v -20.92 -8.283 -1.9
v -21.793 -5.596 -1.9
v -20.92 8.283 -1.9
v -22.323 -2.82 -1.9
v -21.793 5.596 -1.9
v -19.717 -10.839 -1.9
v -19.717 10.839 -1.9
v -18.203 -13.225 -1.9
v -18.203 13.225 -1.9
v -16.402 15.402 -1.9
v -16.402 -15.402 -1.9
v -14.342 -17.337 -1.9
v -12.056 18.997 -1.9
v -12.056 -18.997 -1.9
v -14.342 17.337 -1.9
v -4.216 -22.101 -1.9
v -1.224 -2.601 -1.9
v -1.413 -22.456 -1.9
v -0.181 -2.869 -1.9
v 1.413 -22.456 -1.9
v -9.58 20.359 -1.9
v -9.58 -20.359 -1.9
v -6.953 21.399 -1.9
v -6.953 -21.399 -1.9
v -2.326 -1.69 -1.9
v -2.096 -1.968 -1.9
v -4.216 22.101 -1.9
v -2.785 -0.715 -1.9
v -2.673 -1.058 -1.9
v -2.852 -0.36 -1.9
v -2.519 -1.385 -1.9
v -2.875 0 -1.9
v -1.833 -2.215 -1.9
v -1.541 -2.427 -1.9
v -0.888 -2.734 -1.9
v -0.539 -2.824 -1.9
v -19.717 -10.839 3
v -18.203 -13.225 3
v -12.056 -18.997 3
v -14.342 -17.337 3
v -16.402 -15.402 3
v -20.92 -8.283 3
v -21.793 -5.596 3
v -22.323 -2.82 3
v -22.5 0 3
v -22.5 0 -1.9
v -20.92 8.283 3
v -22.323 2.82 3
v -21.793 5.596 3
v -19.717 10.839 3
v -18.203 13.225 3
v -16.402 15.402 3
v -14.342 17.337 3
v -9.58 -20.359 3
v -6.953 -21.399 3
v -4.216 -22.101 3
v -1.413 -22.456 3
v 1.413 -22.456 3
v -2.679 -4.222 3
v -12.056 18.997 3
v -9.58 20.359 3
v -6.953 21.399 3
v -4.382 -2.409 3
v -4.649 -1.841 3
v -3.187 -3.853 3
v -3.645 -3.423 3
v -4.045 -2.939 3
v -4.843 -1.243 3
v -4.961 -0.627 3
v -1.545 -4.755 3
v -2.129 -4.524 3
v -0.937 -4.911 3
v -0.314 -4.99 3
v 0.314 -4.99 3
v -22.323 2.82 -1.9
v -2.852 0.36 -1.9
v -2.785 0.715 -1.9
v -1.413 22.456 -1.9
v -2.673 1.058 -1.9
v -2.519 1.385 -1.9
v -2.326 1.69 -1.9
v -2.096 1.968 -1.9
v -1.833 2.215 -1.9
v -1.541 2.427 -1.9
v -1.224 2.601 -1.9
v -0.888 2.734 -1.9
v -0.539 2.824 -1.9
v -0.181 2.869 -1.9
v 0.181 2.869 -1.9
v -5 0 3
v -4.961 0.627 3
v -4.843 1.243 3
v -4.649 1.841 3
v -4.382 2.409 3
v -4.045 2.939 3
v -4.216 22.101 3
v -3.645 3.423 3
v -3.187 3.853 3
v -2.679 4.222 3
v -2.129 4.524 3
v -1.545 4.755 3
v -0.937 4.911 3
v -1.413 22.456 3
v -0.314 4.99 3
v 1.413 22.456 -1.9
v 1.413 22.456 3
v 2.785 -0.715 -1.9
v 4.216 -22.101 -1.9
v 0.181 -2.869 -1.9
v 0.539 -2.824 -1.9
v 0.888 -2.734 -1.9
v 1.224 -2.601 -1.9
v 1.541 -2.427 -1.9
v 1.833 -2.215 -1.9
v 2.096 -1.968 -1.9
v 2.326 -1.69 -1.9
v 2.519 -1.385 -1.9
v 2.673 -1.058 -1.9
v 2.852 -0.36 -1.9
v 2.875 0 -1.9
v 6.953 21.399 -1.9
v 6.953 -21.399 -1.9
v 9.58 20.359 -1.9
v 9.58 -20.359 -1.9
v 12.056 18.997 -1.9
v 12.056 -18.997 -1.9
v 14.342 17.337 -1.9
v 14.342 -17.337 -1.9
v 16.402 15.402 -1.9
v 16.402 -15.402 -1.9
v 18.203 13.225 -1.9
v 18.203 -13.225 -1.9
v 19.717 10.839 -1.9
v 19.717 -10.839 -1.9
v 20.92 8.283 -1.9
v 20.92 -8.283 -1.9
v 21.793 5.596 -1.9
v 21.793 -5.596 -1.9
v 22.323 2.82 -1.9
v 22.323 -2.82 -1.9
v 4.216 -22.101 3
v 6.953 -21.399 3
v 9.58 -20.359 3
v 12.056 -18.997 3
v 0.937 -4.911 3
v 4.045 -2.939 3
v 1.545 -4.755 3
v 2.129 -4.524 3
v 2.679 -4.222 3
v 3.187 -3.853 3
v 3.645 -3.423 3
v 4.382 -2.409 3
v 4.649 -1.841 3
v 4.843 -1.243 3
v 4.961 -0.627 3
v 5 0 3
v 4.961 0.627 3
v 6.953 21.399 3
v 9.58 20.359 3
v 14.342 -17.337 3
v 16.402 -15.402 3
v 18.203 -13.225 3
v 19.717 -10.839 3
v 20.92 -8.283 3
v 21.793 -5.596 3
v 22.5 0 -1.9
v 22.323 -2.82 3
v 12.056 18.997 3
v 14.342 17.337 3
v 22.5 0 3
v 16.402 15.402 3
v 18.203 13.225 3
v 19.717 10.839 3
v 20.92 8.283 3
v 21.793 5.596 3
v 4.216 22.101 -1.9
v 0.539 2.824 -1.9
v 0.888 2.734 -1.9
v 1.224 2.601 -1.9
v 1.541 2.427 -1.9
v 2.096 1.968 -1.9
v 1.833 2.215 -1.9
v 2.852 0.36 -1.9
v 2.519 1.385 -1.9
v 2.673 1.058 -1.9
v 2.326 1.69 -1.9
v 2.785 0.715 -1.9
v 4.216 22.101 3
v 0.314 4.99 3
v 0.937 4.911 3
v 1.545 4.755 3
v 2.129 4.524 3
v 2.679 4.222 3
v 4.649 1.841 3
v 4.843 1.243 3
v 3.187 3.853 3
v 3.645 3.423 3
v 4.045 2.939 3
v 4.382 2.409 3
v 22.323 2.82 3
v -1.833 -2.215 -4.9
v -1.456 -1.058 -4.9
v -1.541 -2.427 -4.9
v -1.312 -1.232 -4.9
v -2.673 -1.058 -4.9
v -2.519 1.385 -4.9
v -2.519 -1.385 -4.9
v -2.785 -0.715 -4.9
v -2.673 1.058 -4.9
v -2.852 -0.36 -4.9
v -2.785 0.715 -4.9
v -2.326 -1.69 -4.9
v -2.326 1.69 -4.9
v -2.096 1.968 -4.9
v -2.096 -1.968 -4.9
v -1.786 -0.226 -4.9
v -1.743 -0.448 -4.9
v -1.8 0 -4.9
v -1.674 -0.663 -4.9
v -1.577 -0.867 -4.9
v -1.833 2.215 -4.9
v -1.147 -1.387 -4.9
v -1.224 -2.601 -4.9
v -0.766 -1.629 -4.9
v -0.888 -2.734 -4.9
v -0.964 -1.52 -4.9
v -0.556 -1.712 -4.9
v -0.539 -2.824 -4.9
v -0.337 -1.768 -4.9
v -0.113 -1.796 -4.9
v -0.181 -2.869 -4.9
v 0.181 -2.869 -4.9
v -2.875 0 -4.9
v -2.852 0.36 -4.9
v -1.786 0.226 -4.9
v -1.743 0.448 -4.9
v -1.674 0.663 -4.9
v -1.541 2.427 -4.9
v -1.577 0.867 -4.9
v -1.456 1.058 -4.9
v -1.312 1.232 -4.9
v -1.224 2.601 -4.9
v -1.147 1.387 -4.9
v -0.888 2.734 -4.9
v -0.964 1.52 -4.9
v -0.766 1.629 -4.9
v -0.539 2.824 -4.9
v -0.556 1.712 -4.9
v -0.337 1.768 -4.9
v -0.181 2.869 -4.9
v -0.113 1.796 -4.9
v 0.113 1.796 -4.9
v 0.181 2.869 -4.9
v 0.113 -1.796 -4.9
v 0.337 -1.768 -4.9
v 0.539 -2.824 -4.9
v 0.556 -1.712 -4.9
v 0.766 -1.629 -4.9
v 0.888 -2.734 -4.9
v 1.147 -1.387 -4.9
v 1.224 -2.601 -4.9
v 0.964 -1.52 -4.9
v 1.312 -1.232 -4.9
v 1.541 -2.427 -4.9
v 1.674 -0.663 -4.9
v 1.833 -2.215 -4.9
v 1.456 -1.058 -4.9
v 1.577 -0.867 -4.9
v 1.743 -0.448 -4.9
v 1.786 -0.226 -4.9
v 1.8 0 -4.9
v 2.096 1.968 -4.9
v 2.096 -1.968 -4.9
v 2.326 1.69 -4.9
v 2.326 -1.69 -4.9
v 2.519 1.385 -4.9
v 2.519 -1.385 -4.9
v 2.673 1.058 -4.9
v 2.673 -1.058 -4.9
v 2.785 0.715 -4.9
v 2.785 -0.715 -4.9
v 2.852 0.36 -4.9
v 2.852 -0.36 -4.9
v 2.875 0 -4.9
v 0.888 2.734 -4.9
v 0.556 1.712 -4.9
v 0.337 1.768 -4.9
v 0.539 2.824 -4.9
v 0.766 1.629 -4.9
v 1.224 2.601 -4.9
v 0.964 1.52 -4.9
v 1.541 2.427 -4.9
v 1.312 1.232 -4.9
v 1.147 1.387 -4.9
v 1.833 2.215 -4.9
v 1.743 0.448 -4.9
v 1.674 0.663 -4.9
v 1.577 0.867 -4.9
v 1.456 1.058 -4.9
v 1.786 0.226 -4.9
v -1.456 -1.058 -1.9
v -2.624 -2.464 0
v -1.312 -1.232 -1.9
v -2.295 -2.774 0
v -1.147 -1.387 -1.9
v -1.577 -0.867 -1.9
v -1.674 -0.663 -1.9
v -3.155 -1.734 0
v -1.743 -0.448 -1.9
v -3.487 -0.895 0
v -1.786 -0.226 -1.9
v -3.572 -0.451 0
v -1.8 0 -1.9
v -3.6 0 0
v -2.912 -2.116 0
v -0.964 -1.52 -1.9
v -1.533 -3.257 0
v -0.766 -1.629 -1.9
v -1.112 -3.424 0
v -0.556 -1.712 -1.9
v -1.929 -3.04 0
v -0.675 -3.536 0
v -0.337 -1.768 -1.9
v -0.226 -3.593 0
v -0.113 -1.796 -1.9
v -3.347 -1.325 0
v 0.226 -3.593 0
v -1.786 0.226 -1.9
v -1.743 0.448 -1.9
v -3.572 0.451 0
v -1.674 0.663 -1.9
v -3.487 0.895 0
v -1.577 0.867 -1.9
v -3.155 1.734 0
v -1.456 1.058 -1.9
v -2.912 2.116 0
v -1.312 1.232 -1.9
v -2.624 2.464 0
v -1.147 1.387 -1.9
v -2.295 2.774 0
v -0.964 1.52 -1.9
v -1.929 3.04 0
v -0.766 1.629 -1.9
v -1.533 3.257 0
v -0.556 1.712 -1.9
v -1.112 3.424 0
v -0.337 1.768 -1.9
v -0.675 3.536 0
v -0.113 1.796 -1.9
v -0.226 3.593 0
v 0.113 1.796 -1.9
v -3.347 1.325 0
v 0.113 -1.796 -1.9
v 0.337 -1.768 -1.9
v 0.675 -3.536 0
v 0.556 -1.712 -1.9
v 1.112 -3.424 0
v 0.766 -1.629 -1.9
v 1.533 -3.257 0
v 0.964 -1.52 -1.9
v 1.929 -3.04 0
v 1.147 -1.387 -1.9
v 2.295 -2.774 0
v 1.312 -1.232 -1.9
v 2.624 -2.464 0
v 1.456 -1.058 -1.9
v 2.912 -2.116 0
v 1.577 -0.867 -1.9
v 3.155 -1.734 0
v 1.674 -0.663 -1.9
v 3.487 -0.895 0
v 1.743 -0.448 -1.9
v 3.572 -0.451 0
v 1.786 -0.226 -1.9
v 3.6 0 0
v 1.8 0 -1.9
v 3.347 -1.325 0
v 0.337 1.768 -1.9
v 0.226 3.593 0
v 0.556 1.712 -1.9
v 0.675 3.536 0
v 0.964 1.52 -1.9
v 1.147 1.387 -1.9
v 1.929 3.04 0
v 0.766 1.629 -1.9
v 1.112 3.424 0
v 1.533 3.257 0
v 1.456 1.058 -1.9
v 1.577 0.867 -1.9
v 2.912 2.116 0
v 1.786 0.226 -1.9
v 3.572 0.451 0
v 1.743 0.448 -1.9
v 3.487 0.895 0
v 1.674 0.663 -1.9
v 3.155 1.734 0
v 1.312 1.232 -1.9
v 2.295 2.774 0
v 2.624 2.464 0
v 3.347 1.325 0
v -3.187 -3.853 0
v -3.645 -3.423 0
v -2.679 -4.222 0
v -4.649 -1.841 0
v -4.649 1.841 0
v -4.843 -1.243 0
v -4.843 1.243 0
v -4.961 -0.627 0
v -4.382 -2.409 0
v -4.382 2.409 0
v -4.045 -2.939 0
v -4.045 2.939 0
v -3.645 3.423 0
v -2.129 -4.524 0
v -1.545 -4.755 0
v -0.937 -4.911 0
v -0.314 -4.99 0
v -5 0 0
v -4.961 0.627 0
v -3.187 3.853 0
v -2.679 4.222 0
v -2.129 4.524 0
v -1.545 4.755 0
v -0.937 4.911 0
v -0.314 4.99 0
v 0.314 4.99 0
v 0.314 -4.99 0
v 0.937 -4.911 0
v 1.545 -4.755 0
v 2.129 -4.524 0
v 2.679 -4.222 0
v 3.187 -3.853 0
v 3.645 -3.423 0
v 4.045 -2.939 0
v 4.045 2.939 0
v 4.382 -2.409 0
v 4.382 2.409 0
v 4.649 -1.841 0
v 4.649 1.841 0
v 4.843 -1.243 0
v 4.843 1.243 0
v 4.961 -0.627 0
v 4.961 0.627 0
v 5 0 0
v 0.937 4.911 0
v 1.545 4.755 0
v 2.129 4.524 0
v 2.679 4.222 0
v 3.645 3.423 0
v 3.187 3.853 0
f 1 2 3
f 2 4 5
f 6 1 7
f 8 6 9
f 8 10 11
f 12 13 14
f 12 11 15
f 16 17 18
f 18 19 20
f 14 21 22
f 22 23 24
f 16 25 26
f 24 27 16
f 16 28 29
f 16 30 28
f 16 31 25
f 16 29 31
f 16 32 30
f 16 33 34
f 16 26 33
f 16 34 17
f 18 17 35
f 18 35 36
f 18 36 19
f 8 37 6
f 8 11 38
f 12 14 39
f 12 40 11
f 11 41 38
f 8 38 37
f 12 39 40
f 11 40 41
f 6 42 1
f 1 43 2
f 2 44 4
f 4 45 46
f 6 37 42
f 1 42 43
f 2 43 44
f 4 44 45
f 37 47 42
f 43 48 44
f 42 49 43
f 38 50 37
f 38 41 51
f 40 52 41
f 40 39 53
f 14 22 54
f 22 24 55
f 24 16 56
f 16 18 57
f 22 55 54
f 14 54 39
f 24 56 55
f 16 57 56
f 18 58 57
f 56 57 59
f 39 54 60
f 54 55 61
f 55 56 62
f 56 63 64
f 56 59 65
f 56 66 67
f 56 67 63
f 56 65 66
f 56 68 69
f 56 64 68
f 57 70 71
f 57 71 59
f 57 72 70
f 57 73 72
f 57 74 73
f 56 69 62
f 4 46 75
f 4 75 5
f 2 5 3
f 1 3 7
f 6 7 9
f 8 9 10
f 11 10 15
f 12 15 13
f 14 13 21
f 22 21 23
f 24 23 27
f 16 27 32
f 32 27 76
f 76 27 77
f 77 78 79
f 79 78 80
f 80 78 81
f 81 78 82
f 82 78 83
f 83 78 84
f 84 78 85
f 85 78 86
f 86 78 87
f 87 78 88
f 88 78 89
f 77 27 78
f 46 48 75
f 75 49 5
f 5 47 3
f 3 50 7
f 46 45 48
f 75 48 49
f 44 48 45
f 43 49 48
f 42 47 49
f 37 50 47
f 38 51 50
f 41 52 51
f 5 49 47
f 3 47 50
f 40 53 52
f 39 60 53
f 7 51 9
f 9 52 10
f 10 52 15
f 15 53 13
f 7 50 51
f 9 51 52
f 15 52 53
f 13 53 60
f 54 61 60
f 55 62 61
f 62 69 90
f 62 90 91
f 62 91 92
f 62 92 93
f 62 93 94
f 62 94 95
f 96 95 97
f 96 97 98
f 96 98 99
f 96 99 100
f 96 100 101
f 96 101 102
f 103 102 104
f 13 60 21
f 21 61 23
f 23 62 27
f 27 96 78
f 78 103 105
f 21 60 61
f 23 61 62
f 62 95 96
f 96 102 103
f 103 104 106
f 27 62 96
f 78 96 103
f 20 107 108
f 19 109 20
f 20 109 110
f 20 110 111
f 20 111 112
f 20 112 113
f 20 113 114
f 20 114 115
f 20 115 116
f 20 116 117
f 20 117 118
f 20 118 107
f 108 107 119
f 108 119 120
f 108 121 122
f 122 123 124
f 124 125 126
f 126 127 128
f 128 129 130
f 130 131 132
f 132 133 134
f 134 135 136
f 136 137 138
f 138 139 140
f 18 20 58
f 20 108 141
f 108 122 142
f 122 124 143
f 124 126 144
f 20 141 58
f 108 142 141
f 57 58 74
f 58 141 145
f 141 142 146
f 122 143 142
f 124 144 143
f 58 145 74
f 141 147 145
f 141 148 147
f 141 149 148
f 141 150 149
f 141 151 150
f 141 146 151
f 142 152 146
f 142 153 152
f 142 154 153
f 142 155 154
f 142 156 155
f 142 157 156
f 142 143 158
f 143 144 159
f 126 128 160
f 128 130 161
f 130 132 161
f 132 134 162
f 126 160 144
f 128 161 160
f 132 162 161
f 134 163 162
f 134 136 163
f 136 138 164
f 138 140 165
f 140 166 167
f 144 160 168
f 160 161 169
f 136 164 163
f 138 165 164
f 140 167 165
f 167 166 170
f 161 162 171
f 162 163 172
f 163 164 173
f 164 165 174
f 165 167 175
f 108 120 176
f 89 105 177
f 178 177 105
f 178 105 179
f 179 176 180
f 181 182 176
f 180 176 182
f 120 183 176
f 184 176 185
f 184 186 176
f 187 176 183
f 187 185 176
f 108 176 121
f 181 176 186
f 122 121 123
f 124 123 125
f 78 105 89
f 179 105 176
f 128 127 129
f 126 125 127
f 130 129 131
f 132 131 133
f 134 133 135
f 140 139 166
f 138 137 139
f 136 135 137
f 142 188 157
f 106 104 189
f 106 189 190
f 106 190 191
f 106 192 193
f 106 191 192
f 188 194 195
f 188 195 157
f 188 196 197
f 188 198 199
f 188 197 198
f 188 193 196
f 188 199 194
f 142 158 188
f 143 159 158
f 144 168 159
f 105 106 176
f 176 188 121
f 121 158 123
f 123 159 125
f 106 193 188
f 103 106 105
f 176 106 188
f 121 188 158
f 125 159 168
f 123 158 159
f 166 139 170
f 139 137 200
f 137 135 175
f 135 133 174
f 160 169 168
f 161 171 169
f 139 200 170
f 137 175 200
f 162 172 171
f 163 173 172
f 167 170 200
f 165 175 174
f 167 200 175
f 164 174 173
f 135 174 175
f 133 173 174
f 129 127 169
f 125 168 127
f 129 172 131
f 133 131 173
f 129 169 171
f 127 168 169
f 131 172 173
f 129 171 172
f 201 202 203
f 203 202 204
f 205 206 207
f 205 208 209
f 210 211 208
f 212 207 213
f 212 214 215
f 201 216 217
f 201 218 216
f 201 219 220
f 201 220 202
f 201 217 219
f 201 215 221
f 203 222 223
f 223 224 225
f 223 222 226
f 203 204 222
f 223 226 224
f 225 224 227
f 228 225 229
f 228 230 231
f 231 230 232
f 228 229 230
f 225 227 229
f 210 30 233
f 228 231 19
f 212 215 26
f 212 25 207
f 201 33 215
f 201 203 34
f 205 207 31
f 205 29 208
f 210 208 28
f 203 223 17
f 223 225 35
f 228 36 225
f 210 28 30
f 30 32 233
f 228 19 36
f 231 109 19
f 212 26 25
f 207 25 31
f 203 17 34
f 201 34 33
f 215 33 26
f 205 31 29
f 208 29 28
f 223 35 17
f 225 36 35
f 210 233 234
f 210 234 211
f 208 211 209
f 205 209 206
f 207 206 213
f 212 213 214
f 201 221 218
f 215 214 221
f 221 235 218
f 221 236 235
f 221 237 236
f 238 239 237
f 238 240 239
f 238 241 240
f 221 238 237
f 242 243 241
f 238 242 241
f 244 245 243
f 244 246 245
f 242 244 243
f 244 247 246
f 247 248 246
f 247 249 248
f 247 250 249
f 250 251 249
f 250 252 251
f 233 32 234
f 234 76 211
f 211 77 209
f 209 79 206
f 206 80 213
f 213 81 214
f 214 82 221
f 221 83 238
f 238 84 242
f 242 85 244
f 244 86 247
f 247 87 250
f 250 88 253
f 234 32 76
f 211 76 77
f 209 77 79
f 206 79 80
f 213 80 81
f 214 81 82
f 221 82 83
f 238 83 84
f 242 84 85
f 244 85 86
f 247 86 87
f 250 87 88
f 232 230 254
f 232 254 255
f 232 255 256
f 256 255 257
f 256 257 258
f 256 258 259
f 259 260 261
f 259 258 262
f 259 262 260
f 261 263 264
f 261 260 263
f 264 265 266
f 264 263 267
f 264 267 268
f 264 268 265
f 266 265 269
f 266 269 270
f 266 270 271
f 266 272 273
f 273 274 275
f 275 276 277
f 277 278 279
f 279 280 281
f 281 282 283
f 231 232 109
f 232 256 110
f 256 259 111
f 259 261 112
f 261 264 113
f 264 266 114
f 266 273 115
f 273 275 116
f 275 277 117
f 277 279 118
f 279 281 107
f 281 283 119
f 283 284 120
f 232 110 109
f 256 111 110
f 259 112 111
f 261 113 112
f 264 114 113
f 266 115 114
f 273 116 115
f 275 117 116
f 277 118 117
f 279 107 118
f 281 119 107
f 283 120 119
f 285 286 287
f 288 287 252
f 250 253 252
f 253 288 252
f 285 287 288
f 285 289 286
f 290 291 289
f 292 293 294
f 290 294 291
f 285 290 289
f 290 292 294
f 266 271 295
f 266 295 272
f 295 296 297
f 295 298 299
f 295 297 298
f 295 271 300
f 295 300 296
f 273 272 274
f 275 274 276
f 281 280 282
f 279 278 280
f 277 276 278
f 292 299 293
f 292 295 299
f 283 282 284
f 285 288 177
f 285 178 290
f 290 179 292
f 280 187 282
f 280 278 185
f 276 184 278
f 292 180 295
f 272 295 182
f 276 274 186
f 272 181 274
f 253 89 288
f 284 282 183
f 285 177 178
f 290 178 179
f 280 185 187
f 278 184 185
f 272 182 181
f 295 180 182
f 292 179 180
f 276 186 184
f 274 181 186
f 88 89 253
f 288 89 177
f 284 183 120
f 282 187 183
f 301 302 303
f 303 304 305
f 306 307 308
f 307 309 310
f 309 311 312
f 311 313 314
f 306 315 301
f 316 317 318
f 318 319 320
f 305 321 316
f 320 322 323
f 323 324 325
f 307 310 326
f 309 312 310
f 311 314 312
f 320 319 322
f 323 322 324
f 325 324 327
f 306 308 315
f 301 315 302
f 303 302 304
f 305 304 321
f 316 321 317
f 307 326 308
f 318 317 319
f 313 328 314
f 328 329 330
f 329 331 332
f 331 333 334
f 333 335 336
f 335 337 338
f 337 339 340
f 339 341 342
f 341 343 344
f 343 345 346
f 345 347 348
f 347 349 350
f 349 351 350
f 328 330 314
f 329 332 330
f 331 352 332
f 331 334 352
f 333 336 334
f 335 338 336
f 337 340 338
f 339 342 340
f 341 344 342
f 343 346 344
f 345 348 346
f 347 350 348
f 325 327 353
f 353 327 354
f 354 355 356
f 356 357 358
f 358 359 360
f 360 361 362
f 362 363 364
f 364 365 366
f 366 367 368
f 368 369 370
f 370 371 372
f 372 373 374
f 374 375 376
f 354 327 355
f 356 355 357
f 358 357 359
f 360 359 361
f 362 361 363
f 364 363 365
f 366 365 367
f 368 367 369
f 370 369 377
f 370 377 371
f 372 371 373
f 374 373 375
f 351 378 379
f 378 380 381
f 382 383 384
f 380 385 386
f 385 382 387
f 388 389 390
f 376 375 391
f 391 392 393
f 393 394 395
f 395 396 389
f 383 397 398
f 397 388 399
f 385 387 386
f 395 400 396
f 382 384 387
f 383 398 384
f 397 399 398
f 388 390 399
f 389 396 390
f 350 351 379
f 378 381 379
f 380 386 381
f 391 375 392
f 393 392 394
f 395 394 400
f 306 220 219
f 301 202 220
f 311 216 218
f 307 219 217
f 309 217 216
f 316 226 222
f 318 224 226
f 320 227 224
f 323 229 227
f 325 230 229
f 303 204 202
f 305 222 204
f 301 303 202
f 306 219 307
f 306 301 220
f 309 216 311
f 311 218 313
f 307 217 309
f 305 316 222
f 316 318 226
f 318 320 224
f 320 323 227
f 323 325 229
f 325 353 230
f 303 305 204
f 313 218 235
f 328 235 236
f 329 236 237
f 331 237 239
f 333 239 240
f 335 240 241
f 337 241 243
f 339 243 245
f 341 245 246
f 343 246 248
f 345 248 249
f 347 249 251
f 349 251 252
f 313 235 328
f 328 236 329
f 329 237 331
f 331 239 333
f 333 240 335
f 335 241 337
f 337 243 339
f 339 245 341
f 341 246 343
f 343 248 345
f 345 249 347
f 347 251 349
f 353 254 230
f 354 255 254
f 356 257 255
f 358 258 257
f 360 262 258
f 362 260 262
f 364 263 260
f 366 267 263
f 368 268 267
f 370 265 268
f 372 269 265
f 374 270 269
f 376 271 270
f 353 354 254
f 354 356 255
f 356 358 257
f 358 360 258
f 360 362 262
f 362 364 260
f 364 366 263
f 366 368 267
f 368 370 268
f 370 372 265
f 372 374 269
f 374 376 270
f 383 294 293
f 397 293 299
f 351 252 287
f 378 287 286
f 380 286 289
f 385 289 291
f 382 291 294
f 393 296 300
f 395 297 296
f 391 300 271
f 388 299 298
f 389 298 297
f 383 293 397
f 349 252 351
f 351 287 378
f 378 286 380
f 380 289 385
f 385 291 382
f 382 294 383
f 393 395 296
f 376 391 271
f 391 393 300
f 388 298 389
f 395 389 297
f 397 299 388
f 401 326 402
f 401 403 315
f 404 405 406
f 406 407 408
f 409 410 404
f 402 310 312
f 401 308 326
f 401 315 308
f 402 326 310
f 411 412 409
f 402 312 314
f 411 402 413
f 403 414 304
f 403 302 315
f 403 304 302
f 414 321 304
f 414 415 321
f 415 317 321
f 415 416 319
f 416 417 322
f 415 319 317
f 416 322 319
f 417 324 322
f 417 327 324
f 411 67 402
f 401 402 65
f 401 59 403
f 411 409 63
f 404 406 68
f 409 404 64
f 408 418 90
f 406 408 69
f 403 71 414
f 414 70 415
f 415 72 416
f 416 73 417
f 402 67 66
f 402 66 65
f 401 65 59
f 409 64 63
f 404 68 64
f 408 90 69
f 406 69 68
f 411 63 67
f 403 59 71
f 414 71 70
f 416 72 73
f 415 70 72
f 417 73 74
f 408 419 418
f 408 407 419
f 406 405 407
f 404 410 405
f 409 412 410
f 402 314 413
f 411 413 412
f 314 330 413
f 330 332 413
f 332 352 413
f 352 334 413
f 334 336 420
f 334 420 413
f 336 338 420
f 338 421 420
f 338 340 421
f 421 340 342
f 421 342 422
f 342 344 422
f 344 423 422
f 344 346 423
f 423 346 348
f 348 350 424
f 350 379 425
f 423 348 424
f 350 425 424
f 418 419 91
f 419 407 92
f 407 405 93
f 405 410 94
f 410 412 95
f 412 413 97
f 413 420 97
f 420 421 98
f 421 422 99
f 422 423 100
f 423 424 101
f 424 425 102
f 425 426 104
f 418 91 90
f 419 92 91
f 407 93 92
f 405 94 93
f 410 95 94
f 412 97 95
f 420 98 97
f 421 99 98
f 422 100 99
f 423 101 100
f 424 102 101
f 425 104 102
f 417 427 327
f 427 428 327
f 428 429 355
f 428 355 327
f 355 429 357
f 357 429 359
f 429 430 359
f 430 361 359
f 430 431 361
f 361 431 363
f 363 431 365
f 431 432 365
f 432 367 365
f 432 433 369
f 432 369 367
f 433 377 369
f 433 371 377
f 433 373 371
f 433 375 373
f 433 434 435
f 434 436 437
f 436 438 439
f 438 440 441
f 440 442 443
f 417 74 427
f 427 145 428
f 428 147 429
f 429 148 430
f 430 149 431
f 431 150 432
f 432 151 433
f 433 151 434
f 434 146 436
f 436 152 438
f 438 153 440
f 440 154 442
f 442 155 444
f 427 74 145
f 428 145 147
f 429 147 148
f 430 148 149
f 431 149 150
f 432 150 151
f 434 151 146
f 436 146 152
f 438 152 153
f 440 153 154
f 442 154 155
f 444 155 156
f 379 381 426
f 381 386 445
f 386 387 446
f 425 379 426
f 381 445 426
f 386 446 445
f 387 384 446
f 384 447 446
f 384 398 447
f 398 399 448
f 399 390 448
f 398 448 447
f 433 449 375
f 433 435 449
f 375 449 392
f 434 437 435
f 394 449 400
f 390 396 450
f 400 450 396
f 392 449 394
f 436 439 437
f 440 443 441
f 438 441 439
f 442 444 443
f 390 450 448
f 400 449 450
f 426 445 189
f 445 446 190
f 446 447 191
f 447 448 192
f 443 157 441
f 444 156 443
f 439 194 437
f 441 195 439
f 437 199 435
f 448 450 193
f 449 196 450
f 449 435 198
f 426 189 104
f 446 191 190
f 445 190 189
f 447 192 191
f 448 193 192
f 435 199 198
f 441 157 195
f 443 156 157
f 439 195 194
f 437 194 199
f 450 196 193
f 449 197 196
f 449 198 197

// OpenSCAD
$fn = 50;

difference() {
	union() {
		translate(v = [0, 0, -1.9000000000000004]) {
			cylinder(h = 4.9, r = 22.5);
		}
		#translate(v = [0, 0, -4.9]) {
			cylinder(h = 4.9, r = 2.875);
		}
	}
	union() {
		translate(v = [0, 0, 0]) {
			rotate(a = [0, 0, 0]) {
				difference() {
					union() {
						translate(v = [0, 0, -4.9]) {
							cylinder(h = 4.9, r = 1.5);
						}
						translate(v = [0, 0, -1.9]) {
							cylinder(h = 1.9, r1 = 1.8, r2 = 3.6);
						}
						translate(v = [0, 0, -4.9]) {
							cylinder(h = 4.9, r = 1.8);
						}
						translate(v = [0, 0, -4.9]) {
							cylinder(h = 4.9, r = 1.5);
						}
					}
					union();
				}
			}
		}
		#cylinder(h = 3, r = 5.0);
	}
}
